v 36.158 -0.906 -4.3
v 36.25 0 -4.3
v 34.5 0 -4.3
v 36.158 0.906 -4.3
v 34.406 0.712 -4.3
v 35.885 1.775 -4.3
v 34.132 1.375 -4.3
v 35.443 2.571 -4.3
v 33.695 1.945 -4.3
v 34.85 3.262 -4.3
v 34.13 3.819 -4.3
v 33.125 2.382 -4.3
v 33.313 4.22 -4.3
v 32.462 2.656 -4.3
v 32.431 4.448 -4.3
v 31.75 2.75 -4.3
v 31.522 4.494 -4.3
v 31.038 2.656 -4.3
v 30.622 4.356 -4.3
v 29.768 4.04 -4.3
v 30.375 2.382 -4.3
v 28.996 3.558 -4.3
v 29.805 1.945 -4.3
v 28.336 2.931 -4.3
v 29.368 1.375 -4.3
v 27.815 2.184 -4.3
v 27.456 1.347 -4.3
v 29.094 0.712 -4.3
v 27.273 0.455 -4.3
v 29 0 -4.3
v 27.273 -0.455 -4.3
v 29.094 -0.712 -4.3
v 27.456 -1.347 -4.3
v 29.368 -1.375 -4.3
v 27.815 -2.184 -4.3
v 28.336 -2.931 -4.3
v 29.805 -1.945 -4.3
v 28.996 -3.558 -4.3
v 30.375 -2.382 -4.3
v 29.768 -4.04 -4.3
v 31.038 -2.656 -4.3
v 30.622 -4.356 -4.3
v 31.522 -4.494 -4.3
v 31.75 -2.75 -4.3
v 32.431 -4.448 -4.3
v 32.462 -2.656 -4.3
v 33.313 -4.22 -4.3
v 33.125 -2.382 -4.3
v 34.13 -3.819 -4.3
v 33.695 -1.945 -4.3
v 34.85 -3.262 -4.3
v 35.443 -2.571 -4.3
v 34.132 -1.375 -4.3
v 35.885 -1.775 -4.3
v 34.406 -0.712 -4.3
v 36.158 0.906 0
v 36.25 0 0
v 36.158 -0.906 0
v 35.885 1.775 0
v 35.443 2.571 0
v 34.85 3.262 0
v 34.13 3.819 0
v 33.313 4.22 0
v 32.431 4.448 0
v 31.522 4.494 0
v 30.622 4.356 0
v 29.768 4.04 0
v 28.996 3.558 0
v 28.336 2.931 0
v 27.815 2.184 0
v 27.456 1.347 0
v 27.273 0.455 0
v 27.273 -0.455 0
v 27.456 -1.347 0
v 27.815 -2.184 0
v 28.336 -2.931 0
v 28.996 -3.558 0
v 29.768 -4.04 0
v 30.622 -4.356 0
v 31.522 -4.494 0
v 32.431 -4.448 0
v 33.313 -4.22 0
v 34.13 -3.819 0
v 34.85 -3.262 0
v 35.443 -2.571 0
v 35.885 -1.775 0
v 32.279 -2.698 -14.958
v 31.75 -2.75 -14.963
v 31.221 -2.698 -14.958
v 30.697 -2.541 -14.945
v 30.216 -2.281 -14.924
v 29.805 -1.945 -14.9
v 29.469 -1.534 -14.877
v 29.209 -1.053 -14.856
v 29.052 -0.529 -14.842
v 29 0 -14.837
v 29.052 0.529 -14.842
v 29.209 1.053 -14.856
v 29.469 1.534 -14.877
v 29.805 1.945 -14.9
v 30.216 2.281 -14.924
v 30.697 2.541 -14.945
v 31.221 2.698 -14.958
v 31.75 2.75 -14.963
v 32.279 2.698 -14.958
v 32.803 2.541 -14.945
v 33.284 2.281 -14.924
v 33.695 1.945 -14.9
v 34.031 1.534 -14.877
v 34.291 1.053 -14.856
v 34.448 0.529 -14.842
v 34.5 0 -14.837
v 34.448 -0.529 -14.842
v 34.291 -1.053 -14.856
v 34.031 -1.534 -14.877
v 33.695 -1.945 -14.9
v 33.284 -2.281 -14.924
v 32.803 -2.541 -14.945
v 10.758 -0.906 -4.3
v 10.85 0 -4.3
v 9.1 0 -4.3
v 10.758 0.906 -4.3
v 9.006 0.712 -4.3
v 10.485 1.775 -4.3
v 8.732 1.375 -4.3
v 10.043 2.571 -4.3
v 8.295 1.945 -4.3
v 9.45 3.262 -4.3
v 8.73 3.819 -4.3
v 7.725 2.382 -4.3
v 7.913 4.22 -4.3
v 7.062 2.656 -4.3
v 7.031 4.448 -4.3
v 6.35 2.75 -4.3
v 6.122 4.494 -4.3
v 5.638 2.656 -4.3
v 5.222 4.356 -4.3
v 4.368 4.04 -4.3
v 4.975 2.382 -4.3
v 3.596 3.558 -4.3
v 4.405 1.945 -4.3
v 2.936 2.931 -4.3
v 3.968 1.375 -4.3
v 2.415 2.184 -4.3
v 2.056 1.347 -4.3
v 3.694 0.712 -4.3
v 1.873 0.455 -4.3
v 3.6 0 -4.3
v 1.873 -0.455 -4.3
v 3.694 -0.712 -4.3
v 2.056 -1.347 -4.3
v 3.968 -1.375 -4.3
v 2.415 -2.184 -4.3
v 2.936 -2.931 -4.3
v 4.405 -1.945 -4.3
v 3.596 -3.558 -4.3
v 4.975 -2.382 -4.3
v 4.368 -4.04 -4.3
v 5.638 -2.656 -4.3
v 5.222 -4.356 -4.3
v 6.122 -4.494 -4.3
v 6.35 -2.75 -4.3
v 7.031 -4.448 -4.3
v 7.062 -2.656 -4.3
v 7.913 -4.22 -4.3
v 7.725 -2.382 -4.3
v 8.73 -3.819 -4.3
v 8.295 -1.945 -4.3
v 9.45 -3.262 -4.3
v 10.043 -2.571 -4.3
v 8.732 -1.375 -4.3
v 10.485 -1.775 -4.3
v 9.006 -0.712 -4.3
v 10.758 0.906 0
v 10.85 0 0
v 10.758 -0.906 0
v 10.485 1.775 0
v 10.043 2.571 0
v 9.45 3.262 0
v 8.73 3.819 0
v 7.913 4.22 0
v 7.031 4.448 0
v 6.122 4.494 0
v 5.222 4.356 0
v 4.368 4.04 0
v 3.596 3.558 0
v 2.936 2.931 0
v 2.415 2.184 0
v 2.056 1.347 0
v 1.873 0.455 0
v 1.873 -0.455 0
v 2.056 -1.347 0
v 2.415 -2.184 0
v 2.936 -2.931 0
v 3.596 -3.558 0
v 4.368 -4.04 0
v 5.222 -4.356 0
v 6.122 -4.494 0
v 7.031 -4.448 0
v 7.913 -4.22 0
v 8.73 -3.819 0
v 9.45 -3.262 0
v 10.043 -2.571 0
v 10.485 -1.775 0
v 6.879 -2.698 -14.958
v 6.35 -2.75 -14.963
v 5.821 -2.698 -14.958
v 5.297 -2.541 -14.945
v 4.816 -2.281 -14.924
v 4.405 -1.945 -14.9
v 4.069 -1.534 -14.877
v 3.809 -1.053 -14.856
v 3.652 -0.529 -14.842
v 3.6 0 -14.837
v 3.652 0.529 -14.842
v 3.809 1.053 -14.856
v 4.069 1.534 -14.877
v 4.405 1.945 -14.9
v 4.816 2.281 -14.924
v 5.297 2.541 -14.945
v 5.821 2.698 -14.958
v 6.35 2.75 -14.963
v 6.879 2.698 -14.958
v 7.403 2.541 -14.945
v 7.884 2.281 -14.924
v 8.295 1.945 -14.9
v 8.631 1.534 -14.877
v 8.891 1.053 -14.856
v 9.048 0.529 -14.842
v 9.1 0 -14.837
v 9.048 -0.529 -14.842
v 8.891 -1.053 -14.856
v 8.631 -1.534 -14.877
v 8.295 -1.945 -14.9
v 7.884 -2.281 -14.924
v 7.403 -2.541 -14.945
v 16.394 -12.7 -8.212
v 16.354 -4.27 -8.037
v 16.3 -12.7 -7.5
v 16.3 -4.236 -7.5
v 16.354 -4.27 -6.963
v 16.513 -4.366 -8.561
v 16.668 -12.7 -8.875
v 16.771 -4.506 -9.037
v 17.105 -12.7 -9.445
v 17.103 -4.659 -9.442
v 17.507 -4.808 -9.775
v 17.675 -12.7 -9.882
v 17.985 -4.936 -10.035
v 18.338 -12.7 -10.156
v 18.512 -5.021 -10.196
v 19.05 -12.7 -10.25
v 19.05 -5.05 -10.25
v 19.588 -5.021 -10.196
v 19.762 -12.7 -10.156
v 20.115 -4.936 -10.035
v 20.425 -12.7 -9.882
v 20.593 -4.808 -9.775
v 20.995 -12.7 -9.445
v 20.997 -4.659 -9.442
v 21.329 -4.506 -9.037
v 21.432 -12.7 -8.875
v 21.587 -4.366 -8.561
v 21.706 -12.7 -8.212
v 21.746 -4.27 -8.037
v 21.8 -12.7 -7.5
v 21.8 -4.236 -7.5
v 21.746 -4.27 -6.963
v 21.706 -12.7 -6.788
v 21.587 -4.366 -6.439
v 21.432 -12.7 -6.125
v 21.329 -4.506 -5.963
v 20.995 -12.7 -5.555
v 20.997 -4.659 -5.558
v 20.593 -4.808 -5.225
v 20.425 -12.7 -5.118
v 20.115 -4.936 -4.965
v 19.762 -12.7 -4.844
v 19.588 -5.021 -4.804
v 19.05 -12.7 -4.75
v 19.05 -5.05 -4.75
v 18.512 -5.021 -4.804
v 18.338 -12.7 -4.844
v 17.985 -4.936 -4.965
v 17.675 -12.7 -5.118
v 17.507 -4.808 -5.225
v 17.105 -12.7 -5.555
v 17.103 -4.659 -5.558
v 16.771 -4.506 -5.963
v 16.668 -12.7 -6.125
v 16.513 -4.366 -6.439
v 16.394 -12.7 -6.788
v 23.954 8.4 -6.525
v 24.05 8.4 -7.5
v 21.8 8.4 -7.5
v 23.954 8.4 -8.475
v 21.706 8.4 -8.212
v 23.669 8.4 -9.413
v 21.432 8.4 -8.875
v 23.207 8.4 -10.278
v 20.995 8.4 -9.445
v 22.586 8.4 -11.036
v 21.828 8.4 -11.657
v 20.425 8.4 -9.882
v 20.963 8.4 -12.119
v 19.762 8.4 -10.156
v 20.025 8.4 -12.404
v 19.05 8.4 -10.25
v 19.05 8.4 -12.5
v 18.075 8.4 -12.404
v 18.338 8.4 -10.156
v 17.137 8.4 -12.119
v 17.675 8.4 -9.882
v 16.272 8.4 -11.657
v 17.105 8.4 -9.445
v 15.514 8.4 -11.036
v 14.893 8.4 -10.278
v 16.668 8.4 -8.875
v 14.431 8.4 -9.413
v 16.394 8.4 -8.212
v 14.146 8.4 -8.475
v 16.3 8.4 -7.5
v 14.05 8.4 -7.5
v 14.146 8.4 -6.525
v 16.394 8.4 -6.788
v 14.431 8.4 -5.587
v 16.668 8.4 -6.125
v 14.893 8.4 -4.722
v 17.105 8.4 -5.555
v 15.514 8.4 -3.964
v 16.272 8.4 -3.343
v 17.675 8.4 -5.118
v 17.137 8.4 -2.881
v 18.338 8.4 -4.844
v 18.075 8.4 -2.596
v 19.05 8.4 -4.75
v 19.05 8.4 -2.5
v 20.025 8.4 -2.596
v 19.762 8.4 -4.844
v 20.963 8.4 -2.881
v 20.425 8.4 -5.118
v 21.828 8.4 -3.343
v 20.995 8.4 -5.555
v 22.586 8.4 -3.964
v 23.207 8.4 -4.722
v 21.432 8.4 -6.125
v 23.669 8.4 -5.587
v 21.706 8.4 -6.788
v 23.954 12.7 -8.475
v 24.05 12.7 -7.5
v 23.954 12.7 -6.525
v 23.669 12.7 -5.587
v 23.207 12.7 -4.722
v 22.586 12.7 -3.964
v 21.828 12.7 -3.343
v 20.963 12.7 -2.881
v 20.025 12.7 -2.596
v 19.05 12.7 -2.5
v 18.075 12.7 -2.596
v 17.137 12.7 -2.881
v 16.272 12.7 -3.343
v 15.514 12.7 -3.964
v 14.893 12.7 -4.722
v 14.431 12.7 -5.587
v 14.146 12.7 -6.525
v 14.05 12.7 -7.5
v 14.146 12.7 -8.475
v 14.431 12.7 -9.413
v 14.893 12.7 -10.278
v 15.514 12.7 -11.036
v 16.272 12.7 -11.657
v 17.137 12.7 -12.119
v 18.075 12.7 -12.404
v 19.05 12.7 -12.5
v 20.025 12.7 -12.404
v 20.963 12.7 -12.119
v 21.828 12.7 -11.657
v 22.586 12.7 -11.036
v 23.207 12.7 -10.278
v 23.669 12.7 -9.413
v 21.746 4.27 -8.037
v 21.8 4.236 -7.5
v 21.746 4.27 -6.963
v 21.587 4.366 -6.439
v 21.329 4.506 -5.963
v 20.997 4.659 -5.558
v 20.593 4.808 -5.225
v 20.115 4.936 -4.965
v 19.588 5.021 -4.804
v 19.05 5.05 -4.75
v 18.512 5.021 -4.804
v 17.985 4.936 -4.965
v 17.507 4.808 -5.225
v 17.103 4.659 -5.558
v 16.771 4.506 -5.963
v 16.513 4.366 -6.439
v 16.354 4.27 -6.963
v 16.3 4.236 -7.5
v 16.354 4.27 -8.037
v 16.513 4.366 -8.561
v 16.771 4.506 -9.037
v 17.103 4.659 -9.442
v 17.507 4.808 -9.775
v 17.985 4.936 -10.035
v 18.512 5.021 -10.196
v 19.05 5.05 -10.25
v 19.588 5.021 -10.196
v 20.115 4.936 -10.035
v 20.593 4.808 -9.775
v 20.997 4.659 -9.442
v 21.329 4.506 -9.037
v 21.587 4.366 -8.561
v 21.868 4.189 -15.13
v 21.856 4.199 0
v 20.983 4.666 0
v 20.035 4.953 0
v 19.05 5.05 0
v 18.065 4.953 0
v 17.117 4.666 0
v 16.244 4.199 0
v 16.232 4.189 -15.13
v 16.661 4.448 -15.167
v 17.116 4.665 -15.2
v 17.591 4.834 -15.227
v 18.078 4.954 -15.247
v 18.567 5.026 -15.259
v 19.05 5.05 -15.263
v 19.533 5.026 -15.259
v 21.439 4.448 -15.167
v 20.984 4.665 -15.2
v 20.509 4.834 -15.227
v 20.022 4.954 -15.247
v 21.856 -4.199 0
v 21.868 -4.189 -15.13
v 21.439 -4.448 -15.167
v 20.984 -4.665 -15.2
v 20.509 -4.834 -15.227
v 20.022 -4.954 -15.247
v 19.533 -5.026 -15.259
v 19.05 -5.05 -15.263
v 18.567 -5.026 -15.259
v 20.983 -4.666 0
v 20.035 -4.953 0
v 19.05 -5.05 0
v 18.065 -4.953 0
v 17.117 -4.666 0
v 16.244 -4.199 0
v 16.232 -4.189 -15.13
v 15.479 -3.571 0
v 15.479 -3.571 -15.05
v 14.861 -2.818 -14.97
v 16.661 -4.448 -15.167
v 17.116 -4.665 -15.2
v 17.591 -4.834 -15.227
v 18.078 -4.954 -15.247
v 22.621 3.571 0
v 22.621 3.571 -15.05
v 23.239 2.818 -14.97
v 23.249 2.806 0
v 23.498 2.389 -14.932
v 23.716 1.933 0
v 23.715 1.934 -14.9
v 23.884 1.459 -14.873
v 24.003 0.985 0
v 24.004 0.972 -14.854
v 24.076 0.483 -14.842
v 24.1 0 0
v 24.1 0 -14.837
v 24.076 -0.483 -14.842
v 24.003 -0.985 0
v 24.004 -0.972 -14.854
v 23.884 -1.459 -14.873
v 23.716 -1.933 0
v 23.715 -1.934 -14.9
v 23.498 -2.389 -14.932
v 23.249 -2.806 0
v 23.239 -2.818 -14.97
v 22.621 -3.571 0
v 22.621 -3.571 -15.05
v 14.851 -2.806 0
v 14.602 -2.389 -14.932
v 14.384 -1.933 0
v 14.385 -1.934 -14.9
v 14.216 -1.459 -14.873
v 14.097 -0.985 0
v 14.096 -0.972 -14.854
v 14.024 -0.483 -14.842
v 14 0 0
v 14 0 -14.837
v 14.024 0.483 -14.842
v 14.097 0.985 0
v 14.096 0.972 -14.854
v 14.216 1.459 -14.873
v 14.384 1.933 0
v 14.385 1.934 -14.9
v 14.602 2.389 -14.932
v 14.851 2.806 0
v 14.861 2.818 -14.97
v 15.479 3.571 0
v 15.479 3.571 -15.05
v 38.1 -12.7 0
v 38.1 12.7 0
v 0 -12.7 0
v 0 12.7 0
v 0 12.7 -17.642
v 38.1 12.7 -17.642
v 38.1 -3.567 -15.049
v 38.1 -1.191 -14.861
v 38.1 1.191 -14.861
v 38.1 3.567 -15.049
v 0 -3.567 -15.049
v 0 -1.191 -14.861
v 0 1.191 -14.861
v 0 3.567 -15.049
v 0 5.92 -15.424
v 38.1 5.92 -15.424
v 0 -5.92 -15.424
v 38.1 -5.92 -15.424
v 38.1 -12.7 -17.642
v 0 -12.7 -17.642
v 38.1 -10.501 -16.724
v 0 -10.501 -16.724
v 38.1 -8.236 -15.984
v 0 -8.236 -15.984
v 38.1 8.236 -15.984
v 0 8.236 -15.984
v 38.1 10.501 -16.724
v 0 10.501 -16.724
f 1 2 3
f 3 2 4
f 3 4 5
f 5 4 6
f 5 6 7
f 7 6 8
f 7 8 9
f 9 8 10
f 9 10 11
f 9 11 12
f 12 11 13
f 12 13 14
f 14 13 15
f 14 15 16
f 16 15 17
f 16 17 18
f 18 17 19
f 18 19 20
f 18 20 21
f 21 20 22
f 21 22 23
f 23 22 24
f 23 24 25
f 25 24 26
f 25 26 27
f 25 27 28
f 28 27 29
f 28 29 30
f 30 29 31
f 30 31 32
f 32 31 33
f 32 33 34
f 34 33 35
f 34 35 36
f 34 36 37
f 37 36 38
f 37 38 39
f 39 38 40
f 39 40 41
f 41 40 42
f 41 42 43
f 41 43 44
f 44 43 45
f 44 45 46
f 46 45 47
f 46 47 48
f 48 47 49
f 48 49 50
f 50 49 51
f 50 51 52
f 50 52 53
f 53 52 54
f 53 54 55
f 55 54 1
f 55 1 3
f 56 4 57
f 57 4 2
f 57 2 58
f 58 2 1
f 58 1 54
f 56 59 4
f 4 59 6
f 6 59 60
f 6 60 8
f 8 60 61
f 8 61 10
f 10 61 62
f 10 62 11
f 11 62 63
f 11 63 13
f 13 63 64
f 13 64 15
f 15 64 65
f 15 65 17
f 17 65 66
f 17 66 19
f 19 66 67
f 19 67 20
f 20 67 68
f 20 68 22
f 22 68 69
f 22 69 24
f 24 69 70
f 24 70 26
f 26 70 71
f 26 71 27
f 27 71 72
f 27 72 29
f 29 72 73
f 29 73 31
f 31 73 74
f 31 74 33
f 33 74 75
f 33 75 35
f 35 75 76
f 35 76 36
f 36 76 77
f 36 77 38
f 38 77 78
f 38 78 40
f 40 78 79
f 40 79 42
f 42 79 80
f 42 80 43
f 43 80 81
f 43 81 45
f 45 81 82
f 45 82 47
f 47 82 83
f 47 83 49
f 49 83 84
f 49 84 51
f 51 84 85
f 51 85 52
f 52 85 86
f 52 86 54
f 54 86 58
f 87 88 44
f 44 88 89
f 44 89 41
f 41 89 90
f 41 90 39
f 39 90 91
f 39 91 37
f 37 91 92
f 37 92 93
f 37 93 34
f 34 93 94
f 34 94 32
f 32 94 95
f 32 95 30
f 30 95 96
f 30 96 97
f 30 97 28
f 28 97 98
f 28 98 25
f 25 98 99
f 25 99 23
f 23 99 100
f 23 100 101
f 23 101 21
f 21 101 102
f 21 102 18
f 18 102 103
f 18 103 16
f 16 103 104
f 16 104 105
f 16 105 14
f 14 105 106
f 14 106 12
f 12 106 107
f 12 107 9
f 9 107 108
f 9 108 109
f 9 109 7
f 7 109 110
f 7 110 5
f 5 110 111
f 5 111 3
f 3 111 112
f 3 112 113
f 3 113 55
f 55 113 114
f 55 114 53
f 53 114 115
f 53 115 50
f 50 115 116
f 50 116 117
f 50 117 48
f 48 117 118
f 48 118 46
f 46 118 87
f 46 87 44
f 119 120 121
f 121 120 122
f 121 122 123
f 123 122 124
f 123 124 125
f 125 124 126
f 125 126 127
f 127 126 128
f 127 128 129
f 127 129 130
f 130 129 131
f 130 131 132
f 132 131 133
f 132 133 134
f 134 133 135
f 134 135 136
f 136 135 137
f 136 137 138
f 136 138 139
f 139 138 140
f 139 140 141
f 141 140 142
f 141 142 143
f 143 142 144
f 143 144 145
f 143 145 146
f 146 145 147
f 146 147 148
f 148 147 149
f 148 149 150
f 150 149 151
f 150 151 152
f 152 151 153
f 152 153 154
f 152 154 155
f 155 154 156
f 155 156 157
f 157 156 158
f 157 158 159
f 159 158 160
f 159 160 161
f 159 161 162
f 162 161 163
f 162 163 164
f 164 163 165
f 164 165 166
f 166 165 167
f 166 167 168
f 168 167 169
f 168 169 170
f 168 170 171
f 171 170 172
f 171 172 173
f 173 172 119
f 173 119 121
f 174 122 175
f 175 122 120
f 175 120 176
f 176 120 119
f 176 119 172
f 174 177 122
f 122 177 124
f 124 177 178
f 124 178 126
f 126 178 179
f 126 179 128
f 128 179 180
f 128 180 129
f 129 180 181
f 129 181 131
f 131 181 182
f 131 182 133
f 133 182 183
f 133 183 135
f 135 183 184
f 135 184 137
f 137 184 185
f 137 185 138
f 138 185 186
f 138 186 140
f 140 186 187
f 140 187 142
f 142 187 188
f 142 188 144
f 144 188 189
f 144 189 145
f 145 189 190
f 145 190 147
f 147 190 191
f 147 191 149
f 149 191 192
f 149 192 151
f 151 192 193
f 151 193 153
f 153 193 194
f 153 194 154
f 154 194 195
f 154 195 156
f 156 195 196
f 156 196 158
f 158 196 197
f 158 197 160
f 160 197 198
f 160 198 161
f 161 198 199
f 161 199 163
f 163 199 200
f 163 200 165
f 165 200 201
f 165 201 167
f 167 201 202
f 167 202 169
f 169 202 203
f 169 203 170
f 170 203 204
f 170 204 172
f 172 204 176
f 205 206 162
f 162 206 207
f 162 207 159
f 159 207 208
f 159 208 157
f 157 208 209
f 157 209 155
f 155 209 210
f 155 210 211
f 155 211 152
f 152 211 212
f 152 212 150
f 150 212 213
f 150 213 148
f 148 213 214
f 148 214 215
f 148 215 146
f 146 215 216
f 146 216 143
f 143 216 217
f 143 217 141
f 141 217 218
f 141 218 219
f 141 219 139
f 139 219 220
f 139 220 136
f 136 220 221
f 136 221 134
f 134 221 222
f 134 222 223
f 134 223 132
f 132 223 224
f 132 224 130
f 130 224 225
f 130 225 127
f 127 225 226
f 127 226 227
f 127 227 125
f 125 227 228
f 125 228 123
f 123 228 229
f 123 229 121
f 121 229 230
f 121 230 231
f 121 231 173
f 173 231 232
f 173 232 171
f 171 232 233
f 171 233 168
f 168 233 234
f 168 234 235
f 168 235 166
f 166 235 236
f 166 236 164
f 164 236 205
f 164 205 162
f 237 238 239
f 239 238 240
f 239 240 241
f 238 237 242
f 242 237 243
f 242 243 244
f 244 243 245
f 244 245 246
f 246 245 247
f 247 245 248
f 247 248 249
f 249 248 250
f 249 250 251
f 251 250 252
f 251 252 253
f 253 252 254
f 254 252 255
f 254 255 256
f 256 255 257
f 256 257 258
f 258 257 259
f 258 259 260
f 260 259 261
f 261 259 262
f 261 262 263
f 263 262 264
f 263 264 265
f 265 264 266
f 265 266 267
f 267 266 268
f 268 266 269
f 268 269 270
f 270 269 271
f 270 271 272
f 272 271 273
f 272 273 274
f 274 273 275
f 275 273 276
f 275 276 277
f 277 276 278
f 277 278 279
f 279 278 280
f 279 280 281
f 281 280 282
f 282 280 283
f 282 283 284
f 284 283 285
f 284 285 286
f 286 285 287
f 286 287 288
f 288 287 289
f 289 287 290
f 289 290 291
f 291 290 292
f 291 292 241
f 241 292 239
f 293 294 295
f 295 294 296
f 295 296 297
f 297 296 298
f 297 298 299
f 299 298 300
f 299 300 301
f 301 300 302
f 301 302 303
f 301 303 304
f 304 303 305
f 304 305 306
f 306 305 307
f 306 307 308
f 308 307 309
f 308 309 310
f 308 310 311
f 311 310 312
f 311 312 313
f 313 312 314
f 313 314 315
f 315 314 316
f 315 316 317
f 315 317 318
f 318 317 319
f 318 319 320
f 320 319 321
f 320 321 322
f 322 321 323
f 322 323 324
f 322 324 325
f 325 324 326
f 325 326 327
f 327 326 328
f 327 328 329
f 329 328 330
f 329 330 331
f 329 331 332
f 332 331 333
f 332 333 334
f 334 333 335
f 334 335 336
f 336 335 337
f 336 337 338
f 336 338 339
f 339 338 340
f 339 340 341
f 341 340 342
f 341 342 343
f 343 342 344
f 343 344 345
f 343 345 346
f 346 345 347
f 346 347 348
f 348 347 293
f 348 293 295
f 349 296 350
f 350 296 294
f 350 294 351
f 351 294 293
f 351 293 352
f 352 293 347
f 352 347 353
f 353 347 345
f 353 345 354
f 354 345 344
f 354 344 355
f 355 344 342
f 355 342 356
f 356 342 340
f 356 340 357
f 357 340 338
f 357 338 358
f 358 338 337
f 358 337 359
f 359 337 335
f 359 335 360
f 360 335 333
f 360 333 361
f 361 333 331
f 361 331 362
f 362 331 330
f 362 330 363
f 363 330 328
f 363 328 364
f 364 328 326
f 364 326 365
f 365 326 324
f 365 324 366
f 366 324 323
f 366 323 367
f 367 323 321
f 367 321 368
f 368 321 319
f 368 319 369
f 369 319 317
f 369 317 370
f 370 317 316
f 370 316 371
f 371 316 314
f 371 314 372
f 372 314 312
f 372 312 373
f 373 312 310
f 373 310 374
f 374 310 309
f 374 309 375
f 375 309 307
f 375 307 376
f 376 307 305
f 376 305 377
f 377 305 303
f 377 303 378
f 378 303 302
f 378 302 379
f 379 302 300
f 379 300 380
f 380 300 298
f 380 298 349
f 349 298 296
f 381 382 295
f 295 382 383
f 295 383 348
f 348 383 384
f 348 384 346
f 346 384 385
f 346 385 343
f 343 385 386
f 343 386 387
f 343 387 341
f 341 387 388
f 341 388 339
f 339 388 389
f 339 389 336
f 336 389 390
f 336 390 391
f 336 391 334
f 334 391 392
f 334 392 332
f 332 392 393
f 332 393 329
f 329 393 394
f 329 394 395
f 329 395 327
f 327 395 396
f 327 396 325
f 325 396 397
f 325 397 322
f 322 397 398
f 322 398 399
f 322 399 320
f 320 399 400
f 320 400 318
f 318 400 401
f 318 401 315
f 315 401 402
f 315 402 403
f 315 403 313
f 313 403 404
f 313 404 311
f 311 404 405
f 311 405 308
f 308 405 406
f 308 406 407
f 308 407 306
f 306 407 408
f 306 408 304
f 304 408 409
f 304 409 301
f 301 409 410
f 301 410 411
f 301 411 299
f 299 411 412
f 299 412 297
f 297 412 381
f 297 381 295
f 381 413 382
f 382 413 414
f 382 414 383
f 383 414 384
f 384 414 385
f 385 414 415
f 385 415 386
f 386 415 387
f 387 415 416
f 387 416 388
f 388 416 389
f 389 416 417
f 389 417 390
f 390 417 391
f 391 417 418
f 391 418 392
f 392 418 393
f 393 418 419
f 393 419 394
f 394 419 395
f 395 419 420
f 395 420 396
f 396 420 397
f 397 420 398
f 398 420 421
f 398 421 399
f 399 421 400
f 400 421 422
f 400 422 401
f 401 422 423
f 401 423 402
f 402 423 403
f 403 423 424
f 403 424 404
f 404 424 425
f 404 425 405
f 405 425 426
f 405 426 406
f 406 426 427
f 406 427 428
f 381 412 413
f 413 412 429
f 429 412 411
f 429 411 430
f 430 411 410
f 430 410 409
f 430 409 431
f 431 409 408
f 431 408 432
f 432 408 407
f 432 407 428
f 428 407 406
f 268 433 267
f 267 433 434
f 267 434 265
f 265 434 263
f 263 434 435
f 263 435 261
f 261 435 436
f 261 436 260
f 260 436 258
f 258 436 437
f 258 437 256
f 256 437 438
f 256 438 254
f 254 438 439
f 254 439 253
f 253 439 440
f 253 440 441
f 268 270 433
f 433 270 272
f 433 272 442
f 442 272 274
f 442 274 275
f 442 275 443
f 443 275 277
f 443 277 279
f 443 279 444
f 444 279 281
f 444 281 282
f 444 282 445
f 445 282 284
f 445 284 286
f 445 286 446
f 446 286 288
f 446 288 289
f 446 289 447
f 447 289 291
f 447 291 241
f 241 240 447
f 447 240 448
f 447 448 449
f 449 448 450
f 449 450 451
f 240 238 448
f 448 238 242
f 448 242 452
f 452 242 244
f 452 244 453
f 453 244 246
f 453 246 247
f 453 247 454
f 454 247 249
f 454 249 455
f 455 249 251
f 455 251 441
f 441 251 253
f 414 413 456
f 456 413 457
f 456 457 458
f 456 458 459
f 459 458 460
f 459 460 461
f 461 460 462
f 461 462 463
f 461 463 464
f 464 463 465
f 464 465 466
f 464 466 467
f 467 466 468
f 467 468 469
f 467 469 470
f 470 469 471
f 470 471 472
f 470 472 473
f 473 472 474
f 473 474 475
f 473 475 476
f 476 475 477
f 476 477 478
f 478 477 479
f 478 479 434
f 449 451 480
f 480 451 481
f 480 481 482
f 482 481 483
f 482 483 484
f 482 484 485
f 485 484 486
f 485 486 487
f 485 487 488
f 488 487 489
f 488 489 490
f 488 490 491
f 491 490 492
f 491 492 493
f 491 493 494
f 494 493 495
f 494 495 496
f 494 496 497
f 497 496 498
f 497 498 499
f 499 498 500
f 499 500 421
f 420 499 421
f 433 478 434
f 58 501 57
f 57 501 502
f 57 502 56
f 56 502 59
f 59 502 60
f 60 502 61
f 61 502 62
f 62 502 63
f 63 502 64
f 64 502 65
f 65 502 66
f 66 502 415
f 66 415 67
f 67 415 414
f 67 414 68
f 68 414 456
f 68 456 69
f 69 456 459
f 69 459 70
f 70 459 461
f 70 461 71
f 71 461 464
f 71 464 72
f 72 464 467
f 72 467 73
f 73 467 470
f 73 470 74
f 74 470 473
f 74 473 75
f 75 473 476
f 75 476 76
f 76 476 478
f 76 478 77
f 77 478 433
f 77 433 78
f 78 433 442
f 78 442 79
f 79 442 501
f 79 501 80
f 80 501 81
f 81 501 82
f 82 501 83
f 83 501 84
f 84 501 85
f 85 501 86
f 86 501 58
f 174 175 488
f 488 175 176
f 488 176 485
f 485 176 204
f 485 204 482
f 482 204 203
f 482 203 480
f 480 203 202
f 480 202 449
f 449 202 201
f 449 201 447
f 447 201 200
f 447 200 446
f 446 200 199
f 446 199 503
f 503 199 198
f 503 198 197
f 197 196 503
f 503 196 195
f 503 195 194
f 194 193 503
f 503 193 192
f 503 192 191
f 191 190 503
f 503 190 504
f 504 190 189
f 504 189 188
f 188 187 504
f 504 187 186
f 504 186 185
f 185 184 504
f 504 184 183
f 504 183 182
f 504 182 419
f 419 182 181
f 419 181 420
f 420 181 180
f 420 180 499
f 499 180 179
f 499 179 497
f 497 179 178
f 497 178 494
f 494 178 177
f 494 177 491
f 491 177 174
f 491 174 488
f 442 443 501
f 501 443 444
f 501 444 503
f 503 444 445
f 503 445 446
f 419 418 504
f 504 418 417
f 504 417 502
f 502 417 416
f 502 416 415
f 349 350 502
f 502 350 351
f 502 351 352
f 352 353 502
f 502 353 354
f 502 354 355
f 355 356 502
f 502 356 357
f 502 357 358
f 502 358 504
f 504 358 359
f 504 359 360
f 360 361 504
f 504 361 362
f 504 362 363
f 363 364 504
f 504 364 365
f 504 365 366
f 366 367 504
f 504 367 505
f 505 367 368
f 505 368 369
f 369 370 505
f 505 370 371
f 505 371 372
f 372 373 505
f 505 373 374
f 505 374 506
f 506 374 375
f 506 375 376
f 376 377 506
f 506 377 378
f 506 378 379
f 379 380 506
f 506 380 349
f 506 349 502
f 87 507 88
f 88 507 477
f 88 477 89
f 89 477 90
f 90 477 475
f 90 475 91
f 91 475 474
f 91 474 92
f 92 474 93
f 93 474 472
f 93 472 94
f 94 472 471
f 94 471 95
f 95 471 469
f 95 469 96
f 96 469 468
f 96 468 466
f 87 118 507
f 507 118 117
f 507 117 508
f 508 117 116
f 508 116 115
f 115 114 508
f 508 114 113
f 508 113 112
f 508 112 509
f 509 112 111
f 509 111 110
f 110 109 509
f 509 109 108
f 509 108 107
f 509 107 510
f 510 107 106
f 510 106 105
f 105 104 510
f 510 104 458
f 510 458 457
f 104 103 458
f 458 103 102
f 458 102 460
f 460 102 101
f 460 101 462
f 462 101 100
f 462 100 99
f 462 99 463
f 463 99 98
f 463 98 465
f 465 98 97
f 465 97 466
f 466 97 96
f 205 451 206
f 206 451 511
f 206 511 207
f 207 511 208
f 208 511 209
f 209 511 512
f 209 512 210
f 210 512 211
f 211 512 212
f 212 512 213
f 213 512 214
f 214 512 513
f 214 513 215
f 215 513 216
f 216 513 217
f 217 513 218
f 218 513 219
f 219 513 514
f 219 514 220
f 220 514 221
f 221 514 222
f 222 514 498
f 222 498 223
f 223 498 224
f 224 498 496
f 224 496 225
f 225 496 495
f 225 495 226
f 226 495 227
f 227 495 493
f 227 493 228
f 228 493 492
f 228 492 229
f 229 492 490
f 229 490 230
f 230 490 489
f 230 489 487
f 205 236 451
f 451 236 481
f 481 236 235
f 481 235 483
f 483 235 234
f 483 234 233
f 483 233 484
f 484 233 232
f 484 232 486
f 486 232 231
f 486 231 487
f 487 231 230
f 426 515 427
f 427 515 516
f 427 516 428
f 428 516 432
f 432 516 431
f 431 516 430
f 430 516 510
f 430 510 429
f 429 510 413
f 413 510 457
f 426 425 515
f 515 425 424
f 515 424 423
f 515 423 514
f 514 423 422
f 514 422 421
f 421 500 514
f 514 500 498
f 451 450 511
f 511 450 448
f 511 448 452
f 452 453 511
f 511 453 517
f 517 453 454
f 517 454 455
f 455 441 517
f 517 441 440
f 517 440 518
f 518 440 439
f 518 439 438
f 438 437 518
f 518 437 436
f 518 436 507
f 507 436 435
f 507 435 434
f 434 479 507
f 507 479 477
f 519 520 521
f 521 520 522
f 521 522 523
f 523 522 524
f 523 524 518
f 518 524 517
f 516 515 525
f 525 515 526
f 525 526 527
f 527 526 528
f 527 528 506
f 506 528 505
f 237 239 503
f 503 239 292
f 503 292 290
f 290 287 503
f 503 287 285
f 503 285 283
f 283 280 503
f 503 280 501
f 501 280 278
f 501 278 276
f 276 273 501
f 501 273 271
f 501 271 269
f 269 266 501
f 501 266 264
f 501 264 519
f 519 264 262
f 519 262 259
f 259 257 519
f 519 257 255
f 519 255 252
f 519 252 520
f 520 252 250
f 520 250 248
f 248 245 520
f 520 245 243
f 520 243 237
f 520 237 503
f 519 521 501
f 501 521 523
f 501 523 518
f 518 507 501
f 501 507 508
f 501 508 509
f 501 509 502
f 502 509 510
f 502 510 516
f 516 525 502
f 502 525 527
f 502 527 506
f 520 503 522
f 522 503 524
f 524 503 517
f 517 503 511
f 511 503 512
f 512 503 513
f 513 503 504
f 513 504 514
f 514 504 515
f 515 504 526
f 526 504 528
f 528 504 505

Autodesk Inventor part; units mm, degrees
ref_plane "YZ Plane" through (0, 0, 0) normal (1, 0, 0) x (0, 1, 0)
ref_plane "XZ Plane" through (0, 0, 0) normal (0, 1, 0) x (-1, 0, 0)
ref_plane "XY Plane" through (0, 0, 0) normal (0, 0, 1) x (1, 0, 0)
sketch "Sketch1" plane through (0, 0, 0) normal (1, 0, 0) x (0, 1, 0)
  arc A0 (12.7, -17.6415) -> (-12.7, -17.6415) centre (0, -45) ccw
  line L0 (0, 0) -> (0, -134.2841)
  line L1 (-12.7, 0) -> (-12.7, -17.6415)
  line L2 (12.7, -17.6415) -> (12.7, 0)
  line L3 (12.7, 0) -> (-12.7, 0)
  dimension "d0" = 60.325
  dimension "d47" = 45
  dimension "d48" = 25.4
extrude "Extrusion1" add sketch "Sketch1" along normal blind 38.1
sketch "Sketch8" plane through (0, -12.7, 0) normal (0, 0, 1) x (1, 0, 0)
  circle A0 centre (19.05, 12.7) radius 5.05
  line L0 (0, 12.7) -> (38.1, 12.7) construction
  line L1 (0, 25.4) -> (38.1, 25.4) construction
  line L2 (38.1, 25.4) -> (38.1, 0) construction
  dimension "d49" = 10.1
extrude "Extrusion6" cut sketch "Sketch8" against normal through all
sketch "Sketch10" plane through (0, 12.7, 0) normal (0, 1, 0) x (1, 0, 0)
  line L0 (0, 17.6415) -> (0, 0) projected
  line L1 (0, 0) -> (38.1, 0) projected
  line L2 (19.05, 0) -> (19.05, 20.4763) construction
  point P0 (19.05, 7.5)
  dimension "d60" = 7.5
hole "Hole2" at (19.05, 12.7, -7.5) direction (0, -1, 0) diameter 5.5 end through all counterbore diameter 10 counterbore depth 4.3 clearance for "Hex Head Cap Screw ISO 24017" size "M5" standard "ISO"
sketch "Sketch11" plane through (0, -12.7, 0) normal (0, 0, 1) x (1, 0, 0)
  line L0 (0, 12.7) -> (38.1, 12.7) construction
  line L1 (38.1, 25.4) -> (38.1, 0) construction
  line L2 (0, 0) -> (38.1, 0) construction
  line L3 (19.05, 0) -> (19.05, 29.1053) construction
  point P0 (31.75, 12.7)
  point P1 (6.35, 12.7)
  dimension "d68" = 25.4
hole "Hole3" at (31.75, 0, 0) at (6.35, 0, 0) direction (0, 0, -1) diameter 5.5 end through all counterbore diameter 9 counterbore depth 4.3 clearance for "Hex Head Cap Screw ISO 24017" size "M5" standard "ISO"
properties part number "Axial Holder" material "ABS Plastic"
